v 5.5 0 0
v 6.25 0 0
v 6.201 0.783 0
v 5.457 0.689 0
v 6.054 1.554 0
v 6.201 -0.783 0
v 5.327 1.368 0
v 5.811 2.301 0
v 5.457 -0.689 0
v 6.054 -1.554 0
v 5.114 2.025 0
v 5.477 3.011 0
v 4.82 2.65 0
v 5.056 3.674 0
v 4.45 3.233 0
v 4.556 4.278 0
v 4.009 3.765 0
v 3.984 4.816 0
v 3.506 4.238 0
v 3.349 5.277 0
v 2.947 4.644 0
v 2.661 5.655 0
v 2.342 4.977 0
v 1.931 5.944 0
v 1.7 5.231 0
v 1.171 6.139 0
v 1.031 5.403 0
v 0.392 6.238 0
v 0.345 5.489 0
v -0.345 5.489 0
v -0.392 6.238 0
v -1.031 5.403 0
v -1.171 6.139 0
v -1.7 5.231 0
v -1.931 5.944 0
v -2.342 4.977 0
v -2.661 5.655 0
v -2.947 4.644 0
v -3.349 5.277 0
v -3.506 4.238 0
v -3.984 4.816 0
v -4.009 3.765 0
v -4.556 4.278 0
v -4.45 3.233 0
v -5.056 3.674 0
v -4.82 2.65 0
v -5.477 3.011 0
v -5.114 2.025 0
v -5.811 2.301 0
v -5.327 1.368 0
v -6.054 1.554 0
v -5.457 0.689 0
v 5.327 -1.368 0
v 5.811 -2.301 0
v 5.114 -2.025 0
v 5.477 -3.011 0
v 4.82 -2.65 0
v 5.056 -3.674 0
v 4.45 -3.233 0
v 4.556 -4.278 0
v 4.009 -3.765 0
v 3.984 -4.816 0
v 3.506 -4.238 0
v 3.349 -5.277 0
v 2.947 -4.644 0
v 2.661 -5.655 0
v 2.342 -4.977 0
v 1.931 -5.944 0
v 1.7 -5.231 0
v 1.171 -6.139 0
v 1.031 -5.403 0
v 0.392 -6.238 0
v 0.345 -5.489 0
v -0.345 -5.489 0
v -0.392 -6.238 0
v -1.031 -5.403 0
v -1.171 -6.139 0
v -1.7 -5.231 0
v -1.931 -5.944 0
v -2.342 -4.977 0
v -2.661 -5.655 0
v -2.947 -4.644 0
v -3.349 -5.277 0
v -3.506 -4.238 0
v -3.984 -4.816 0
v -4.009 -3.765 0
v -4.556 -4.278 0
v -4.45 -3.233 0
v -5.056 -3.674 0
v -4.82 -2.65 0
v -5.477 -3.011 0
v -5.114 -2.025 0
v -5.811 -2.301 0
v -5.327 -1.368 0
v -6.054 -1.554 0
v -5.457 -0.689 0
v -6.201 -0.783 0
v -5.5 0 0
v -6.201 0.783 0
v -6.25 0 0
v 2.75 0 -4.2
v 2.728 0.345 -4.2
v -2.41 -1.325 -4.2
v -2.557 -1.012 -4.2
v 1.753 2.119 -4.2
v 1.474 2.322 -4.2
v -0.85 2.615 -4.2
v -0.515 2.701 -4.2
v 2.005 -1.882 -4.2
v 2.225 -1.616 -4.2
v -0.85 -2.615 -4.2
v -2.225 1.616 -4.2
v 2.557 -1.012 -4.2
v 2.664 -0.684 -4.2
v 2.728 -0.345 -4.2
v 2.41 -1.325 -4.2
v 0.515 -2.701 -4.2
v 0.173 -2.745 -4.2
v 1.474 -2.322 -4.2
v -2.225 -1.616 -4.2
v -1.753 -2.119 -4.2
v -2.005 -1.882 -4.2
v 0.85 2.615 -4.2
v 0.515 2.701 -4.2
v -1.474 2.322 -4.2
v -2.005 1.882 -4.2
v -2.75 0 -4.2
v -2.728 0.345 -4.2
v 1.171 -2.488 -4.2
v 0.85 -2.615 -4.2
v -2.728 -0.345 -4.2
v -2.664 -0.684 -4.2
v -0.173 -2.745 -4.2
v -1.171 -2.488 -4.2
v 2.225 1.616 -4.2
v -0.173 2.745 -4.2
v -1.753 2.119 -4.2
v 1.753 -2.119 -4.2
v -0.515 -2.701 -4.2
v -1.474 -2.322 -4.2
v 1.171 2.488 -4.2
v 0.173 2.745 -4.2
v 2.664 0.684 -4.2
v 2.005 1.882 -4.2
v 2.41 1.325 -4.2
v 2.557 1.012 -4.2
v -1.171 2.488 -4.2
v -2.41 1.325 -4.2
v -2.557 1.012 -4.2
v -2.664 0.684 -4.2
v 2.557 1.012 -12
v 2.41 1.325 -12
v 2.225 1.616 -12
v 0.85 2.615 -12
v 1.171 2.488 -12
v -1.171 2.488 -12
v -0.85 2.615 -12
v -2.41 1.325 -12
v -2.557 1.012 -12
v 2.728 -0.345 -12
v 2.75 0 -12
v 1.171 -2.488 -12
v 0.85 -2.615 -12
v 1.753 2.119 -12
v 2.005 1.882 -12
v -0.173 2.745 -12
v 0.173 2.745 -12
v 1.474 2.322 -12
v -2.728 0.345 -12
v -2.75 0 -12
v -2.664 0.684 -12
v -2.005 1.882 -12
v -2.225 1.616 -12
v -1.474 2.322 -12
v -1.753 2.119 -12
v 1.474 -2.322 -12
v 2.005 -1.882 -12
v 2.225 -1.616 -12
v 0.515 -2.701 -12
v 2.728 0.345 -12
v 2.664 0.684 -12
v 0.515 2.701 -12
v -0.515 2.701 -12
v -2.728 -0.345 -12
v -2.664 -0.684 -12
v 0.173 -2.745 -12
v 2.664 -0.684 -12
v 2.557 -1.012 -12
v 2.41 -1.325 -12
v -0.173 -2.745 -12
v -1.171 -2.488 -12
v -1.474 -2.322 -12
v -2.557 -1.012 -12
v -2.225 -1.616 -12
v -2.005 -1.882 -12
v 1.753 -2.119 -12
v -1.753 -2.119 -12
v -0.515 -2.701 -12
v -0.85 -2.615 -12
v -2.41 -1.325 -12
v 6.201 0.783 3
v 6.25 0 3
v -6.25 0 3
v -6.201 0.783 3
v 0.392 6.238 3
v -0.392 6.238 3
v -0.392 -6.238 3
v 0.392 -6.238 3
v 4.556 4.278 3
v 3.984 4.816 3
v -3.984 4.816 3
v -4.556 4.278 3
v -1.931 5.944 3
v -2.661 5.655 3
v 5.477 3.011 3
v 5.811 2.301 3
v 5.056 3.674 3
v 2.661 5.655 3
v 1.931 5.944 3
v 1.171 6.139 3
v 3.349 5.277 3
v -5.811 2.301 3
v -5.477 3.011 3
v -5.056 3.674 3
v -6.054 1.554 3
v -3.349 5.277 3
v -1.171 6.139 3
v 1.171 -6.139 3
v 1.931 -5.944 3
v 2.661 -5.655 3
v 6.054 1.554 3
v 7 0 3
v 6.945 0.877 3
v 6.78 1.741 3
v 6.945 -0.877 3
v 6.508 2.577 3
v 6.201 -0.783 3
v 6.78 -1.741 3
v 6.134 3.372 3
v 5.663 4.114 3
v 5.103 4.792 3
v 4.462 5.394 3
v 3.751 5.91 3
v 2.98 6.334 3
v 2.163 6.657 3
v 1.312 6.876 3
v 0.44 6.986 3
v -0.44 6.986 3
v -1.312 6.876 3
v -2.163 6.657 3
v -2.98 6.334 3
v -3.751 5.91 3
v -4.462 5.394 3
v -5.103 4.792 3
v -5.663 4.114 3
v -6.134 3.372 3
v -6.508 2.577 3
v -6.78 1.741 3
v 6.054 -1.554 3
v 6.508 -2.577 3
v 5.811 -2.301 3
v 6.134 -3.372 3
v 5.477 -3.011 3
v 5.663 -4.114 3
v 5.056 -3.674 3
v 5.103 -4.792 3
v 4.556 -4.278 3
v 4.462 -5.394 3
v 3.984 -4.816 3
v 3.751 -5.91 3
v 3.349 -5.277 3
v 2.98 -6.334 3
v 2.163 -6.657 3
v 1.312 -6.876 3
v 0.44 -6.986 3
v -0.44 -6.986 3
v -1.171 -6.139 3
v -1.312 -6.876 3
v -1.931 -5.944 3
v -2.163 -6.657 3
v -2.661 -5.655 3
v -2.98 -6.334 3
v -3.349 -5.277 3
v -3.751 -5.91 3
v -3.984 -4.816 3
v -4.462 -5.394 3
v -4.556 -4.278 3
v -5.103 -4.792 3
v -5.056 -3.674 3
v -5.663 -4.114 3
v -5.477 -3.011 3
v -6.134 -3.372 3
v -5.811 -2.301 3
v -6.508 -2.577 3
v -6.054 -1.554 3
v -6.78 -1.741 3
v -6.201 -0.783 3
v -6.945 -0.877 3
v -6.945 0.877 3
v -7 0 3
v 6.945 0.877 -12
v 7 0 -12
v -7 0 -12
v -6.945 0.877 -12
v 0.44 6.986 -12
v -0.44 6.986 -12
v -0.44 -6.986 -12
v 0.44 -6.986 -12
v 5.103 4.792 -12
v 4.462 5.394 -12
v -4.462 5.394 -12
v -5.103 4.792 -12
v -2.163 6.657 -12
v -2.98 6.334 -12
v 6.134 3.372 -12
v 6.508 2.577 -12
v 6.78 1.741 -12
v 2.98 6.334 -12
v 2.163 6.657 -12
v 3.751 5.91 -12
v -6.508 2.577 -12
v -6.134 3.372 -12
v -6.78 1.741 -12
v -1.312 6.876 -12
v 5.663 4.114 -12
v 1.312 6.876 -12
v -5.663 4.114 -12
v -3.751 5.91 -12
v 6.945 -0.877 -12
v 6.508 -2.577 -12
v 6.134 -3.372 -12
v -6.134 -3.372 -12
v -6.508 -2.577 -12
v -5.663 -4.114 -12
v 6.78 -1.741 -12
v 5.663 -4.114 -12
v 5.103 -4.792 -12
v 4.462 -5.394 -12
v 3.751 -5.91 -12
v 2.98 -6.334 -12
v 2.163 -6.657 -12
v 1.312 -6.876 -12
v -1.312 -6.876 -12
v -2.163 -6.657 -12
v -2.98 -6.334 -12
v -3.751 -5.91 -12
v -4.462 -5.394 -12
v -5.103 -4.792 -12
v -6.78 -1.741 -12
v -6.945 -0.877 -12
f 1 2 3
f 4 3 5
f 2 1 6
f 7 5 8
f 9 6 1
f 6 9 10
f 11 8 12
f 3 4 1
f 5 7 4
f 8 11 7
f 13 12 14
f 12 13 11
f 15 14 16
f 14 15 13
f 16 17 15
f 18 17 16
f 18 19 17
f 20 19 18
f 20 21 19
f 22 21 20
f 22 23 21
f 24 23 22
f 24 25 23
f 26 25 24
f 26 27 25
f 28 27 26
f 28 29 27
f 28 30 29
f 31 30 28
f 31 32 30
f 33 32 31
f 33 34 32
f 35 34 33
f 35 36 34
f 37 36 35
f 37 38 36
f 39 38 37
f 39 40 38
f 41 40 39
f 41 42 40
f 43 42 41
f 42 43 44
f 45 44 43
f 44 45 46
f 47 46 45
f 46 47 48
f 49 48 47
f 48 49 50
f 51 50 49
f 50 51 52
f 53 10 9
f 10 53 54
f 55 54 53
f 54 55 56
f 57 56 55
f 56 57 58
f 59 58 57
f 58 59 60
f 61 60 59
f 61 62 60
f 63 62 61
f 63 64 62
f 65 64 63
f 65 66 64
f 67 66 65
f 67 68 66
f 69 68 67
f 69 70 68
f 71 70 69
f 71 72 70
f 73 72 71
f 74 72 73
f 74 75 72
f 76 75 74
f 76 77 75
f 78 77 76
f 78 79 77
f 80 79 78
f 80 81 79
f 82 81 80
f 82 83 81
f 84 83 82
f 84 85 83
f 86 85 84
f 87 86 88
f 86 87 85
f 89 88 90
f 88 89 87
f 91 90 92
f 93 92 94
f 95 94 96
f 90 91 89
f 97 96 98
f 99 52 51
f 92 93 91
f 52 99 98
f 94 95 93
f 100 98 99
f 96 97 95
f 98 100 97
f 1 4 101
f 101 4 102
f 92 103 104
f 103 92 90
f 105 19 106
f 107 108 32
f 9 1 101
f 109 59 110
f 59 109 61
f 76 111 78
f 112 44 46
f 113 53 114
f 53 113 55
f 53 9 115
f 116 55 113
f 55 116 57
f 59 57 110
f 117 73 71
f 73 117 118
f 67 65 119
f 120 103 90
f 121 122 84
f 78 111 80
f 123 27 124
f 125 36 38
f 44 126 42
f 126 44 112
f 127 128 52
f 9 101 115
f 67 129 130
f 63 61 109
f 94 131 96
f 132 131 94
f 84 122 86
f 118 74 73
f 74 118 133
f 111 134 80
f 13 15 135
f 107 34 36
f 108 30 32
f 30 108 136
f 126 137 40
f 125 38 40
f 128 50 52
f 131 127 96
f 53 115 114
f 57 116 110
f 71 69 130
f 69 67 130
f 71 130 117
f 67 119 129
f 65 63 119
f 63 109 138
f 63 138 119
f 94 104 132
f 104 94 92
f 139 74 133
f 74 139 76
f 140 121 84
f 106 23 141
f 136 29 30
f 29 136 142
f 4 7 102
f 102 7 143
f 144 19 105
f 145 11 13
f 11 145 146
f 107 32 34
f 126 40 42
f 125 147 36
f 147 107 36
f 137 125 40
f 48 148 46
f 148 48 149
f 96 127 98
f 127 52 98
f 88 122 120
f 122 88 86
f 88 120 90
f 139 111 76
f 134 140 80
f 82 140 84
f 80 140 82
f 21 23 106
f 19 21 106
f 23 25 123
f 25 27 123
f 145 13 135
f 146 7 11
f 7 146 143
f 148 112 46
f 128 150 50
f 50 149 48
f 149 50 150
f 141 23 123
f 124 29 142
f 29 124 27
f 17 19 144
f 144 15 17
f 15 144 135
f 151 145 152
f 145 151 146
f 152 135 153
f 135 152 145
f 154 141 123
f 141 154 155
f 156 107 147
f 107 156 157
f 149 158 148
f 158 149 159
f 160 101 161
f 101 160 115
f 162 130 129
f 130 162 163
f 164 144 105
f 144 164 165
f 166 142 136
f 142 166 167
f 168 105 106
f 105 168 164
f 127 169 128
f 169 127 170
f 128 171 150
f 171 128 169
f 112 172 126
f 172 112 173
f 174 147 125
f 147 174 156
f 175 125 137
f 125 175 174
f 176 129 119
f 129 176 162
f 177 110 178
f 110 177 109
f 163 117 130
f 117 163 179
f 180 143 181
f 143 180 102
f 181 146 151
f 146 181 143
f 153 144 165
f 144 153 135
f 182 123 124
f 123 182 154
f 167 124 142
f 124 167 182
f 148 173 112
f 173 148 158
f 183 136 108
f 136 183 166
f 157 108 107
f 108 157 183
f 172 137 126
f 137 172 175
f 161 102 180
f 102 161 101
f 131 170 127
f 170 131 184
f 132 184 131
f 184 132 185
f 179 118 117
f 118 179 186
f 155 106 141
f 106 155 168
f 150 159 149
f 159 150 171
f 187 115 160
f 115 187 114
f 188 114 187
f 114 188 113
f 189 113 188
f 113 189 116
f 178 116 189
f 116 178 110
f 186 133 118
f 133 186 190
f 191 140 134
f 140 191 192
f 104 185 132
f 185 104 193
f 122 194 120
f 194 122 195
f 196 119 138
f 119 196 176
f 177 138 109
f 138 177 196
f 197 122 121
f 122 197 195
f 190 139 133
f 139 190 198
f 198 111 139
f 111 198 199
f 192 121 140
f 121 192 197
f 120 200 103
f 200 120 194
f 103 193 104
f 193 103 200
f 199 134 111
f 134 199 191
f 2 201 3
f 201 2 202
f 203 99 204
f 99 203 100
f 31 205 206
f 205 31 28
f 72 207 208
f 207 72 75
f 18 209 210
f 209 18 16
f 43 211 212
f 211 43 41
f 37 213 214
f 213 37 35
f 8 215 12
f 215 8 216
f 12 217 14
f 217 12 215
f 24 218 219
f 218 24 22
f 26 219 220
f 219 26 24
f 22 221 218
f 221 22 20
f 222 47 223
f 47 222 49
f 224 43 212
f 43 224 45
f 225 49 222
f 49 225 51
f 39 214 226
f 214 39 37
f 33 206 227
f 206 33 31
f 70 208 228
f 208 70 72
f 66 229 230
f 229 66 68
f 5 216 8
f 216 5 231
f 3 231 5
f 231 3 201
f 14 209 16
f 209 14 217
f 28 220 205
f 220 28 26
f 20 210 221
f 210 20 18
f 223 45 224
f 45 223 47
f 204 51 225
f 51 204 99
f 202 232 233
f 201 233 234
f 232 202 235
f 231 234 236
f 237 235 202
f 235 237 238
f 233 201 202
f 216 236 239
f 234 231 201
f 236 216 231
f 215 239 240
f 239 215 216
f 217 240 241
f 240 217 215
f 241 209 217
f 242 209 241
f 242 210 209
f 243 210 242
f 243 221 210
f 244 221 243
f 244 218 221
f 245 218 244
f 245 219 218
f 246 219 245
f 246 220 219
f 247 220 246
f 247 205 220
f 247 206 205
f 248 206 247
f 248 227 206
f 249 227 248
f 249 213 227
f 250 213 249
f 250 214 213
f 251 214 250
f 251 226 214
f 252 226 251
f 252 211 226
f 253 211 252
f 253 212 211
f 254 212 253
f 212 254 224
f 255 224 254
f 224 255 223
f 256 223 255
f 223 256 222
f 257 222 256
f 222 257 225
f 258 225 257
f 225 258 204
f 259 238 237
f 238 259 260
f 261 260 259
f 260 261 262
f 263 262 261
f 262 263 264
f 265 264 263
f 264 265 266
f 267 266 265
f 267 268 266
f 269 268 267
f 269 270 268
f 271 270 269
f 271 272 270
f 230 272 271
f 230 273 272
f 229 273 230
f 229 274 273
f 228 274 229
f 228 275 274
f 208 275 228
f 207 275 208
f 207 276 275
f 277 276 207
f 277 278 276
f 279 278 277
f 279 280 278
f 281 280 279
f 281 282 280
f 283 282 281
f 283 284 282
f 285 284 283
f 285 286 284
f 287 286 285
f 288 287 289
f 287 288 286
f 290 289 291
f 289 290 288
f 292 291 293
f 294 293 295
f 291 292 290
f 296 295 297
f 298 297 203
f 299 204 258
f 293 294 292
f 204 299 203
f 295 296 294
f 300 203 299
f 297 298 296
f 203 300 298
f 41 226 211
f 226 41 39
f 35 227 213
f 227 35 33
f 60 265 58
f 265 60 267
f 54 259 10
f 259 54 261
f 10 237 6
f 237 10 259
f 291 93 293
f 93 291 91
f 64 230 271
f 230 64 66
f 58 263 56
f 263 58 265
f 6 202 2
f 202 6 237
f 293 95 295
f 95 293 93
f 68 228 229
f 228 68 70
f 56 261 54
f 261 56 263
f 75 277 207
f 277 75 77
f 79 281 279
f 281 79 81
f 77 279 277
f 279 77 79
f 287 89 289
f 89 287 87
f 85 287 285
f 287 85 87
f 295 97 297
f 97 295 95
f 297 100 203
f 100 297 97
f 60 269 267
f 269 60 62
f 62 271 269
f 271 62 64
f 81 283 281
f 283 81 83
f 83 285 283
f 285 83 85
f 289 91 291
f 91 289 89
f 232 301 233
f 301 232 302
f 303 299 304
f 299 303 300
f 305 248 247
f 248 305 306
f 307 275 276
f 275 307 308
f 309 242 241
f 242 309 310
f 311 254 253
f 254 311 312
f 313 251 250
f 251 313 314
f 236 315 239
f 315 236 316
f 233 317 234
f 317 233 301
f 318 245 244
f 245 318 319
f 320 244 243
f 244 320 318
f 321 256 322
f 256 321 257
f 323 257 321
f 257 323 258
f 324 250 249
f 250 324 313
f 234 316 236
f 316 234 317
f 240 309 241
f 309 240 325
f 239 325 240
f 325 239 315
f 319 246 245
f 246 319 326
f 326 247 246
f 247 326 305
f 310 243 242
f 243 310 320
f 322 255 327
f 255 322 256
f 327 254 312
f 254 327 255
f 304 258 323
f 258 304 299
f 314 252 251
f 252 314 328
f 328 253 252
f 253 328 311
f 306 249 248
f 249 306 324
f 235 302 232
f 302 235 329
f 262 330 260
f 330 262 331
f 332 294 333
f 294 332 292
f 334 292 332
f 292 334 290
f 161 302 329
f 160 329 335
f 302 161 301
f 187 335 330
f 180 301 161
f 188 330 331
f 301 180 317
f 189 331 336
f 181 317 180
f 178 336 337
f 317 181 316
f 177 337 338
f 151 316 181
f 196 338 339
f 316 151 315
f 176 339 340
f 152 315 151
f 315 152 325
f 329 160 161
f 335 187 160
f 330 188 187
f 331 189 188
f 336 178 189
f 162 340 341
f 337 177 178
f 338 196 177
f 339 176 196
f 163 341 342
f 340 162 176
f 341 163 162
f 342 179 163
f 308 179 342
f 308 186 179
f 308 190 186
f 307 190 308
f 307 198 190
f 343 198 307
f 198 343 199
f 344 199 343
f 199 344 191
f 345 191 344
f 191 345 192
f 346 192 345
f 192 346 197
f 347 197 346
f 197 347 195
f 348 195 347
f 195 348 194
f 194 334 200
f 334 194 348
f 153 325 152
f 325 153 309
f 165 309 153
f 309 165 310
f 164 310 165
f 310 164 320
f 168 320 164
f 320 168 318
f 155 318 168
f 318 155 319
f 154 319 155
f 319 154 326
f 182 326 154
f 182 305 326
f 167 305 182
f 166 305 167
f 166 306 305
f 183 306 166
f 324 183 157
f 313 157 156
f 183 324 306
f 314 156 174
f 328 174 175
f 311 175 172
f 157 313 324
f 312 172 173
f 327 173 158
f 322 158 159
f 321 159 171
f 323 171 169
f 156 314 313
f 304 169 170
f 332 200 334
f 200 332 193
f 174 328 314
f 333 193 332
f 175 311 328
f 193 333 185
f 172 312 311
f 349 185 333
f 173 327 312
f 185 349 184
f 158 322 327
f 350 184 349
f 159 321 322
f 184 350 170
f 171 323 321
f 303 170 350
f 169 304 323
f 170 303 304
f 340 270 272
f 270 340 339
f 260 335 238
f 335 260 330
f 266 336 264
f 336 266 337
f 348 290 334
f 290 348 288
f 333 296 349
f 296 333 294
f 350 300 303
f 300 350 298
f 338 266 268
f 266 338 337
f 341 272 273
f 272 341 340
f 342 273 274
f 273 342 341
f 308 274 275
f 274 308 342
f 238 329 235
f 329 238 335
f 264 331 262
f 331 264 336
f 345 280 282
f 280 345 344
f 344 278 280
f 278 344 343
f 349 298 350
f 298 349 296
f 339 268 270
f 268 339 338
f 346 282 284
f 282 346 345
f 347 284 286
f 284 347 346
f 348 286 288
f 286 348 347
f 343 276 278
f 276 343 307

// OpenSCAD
$fn = 50;


difference() {
	union() {
		translate(v = [0, 0, -12.0000000000]) {
			cylinder(h = 15, r = 7.0000000000);
		}
	}
	union() {
		translate(v = [0, 0, 0]) {
			rotate(a = [0, 0, 0]) {
				difference() {
					union() {
						translate(v = [0, 0, -15.0000000000]) {
							cylinder(h = 15, r = 2.2500000000);
						}
						translate(v = [0, 0, -4.2000000000]) {
							cylinder(h = 4.2000000000, r1 = 2.7500000000, r2 = 5.5000000000);
						}
						translate(v = [0, 0, -15.0000000000]) {
							cylinder(h = 15, r = 2.7500000000);
						}
						translate(v = [0, 0, -15.0000000000]) {
							cylinder(h = 15, r = 2.2500000000);
						}
					}
					union();
				}
			}
		}
		#cylinder(h = 3, r = 6.2500000000);
	}
}
